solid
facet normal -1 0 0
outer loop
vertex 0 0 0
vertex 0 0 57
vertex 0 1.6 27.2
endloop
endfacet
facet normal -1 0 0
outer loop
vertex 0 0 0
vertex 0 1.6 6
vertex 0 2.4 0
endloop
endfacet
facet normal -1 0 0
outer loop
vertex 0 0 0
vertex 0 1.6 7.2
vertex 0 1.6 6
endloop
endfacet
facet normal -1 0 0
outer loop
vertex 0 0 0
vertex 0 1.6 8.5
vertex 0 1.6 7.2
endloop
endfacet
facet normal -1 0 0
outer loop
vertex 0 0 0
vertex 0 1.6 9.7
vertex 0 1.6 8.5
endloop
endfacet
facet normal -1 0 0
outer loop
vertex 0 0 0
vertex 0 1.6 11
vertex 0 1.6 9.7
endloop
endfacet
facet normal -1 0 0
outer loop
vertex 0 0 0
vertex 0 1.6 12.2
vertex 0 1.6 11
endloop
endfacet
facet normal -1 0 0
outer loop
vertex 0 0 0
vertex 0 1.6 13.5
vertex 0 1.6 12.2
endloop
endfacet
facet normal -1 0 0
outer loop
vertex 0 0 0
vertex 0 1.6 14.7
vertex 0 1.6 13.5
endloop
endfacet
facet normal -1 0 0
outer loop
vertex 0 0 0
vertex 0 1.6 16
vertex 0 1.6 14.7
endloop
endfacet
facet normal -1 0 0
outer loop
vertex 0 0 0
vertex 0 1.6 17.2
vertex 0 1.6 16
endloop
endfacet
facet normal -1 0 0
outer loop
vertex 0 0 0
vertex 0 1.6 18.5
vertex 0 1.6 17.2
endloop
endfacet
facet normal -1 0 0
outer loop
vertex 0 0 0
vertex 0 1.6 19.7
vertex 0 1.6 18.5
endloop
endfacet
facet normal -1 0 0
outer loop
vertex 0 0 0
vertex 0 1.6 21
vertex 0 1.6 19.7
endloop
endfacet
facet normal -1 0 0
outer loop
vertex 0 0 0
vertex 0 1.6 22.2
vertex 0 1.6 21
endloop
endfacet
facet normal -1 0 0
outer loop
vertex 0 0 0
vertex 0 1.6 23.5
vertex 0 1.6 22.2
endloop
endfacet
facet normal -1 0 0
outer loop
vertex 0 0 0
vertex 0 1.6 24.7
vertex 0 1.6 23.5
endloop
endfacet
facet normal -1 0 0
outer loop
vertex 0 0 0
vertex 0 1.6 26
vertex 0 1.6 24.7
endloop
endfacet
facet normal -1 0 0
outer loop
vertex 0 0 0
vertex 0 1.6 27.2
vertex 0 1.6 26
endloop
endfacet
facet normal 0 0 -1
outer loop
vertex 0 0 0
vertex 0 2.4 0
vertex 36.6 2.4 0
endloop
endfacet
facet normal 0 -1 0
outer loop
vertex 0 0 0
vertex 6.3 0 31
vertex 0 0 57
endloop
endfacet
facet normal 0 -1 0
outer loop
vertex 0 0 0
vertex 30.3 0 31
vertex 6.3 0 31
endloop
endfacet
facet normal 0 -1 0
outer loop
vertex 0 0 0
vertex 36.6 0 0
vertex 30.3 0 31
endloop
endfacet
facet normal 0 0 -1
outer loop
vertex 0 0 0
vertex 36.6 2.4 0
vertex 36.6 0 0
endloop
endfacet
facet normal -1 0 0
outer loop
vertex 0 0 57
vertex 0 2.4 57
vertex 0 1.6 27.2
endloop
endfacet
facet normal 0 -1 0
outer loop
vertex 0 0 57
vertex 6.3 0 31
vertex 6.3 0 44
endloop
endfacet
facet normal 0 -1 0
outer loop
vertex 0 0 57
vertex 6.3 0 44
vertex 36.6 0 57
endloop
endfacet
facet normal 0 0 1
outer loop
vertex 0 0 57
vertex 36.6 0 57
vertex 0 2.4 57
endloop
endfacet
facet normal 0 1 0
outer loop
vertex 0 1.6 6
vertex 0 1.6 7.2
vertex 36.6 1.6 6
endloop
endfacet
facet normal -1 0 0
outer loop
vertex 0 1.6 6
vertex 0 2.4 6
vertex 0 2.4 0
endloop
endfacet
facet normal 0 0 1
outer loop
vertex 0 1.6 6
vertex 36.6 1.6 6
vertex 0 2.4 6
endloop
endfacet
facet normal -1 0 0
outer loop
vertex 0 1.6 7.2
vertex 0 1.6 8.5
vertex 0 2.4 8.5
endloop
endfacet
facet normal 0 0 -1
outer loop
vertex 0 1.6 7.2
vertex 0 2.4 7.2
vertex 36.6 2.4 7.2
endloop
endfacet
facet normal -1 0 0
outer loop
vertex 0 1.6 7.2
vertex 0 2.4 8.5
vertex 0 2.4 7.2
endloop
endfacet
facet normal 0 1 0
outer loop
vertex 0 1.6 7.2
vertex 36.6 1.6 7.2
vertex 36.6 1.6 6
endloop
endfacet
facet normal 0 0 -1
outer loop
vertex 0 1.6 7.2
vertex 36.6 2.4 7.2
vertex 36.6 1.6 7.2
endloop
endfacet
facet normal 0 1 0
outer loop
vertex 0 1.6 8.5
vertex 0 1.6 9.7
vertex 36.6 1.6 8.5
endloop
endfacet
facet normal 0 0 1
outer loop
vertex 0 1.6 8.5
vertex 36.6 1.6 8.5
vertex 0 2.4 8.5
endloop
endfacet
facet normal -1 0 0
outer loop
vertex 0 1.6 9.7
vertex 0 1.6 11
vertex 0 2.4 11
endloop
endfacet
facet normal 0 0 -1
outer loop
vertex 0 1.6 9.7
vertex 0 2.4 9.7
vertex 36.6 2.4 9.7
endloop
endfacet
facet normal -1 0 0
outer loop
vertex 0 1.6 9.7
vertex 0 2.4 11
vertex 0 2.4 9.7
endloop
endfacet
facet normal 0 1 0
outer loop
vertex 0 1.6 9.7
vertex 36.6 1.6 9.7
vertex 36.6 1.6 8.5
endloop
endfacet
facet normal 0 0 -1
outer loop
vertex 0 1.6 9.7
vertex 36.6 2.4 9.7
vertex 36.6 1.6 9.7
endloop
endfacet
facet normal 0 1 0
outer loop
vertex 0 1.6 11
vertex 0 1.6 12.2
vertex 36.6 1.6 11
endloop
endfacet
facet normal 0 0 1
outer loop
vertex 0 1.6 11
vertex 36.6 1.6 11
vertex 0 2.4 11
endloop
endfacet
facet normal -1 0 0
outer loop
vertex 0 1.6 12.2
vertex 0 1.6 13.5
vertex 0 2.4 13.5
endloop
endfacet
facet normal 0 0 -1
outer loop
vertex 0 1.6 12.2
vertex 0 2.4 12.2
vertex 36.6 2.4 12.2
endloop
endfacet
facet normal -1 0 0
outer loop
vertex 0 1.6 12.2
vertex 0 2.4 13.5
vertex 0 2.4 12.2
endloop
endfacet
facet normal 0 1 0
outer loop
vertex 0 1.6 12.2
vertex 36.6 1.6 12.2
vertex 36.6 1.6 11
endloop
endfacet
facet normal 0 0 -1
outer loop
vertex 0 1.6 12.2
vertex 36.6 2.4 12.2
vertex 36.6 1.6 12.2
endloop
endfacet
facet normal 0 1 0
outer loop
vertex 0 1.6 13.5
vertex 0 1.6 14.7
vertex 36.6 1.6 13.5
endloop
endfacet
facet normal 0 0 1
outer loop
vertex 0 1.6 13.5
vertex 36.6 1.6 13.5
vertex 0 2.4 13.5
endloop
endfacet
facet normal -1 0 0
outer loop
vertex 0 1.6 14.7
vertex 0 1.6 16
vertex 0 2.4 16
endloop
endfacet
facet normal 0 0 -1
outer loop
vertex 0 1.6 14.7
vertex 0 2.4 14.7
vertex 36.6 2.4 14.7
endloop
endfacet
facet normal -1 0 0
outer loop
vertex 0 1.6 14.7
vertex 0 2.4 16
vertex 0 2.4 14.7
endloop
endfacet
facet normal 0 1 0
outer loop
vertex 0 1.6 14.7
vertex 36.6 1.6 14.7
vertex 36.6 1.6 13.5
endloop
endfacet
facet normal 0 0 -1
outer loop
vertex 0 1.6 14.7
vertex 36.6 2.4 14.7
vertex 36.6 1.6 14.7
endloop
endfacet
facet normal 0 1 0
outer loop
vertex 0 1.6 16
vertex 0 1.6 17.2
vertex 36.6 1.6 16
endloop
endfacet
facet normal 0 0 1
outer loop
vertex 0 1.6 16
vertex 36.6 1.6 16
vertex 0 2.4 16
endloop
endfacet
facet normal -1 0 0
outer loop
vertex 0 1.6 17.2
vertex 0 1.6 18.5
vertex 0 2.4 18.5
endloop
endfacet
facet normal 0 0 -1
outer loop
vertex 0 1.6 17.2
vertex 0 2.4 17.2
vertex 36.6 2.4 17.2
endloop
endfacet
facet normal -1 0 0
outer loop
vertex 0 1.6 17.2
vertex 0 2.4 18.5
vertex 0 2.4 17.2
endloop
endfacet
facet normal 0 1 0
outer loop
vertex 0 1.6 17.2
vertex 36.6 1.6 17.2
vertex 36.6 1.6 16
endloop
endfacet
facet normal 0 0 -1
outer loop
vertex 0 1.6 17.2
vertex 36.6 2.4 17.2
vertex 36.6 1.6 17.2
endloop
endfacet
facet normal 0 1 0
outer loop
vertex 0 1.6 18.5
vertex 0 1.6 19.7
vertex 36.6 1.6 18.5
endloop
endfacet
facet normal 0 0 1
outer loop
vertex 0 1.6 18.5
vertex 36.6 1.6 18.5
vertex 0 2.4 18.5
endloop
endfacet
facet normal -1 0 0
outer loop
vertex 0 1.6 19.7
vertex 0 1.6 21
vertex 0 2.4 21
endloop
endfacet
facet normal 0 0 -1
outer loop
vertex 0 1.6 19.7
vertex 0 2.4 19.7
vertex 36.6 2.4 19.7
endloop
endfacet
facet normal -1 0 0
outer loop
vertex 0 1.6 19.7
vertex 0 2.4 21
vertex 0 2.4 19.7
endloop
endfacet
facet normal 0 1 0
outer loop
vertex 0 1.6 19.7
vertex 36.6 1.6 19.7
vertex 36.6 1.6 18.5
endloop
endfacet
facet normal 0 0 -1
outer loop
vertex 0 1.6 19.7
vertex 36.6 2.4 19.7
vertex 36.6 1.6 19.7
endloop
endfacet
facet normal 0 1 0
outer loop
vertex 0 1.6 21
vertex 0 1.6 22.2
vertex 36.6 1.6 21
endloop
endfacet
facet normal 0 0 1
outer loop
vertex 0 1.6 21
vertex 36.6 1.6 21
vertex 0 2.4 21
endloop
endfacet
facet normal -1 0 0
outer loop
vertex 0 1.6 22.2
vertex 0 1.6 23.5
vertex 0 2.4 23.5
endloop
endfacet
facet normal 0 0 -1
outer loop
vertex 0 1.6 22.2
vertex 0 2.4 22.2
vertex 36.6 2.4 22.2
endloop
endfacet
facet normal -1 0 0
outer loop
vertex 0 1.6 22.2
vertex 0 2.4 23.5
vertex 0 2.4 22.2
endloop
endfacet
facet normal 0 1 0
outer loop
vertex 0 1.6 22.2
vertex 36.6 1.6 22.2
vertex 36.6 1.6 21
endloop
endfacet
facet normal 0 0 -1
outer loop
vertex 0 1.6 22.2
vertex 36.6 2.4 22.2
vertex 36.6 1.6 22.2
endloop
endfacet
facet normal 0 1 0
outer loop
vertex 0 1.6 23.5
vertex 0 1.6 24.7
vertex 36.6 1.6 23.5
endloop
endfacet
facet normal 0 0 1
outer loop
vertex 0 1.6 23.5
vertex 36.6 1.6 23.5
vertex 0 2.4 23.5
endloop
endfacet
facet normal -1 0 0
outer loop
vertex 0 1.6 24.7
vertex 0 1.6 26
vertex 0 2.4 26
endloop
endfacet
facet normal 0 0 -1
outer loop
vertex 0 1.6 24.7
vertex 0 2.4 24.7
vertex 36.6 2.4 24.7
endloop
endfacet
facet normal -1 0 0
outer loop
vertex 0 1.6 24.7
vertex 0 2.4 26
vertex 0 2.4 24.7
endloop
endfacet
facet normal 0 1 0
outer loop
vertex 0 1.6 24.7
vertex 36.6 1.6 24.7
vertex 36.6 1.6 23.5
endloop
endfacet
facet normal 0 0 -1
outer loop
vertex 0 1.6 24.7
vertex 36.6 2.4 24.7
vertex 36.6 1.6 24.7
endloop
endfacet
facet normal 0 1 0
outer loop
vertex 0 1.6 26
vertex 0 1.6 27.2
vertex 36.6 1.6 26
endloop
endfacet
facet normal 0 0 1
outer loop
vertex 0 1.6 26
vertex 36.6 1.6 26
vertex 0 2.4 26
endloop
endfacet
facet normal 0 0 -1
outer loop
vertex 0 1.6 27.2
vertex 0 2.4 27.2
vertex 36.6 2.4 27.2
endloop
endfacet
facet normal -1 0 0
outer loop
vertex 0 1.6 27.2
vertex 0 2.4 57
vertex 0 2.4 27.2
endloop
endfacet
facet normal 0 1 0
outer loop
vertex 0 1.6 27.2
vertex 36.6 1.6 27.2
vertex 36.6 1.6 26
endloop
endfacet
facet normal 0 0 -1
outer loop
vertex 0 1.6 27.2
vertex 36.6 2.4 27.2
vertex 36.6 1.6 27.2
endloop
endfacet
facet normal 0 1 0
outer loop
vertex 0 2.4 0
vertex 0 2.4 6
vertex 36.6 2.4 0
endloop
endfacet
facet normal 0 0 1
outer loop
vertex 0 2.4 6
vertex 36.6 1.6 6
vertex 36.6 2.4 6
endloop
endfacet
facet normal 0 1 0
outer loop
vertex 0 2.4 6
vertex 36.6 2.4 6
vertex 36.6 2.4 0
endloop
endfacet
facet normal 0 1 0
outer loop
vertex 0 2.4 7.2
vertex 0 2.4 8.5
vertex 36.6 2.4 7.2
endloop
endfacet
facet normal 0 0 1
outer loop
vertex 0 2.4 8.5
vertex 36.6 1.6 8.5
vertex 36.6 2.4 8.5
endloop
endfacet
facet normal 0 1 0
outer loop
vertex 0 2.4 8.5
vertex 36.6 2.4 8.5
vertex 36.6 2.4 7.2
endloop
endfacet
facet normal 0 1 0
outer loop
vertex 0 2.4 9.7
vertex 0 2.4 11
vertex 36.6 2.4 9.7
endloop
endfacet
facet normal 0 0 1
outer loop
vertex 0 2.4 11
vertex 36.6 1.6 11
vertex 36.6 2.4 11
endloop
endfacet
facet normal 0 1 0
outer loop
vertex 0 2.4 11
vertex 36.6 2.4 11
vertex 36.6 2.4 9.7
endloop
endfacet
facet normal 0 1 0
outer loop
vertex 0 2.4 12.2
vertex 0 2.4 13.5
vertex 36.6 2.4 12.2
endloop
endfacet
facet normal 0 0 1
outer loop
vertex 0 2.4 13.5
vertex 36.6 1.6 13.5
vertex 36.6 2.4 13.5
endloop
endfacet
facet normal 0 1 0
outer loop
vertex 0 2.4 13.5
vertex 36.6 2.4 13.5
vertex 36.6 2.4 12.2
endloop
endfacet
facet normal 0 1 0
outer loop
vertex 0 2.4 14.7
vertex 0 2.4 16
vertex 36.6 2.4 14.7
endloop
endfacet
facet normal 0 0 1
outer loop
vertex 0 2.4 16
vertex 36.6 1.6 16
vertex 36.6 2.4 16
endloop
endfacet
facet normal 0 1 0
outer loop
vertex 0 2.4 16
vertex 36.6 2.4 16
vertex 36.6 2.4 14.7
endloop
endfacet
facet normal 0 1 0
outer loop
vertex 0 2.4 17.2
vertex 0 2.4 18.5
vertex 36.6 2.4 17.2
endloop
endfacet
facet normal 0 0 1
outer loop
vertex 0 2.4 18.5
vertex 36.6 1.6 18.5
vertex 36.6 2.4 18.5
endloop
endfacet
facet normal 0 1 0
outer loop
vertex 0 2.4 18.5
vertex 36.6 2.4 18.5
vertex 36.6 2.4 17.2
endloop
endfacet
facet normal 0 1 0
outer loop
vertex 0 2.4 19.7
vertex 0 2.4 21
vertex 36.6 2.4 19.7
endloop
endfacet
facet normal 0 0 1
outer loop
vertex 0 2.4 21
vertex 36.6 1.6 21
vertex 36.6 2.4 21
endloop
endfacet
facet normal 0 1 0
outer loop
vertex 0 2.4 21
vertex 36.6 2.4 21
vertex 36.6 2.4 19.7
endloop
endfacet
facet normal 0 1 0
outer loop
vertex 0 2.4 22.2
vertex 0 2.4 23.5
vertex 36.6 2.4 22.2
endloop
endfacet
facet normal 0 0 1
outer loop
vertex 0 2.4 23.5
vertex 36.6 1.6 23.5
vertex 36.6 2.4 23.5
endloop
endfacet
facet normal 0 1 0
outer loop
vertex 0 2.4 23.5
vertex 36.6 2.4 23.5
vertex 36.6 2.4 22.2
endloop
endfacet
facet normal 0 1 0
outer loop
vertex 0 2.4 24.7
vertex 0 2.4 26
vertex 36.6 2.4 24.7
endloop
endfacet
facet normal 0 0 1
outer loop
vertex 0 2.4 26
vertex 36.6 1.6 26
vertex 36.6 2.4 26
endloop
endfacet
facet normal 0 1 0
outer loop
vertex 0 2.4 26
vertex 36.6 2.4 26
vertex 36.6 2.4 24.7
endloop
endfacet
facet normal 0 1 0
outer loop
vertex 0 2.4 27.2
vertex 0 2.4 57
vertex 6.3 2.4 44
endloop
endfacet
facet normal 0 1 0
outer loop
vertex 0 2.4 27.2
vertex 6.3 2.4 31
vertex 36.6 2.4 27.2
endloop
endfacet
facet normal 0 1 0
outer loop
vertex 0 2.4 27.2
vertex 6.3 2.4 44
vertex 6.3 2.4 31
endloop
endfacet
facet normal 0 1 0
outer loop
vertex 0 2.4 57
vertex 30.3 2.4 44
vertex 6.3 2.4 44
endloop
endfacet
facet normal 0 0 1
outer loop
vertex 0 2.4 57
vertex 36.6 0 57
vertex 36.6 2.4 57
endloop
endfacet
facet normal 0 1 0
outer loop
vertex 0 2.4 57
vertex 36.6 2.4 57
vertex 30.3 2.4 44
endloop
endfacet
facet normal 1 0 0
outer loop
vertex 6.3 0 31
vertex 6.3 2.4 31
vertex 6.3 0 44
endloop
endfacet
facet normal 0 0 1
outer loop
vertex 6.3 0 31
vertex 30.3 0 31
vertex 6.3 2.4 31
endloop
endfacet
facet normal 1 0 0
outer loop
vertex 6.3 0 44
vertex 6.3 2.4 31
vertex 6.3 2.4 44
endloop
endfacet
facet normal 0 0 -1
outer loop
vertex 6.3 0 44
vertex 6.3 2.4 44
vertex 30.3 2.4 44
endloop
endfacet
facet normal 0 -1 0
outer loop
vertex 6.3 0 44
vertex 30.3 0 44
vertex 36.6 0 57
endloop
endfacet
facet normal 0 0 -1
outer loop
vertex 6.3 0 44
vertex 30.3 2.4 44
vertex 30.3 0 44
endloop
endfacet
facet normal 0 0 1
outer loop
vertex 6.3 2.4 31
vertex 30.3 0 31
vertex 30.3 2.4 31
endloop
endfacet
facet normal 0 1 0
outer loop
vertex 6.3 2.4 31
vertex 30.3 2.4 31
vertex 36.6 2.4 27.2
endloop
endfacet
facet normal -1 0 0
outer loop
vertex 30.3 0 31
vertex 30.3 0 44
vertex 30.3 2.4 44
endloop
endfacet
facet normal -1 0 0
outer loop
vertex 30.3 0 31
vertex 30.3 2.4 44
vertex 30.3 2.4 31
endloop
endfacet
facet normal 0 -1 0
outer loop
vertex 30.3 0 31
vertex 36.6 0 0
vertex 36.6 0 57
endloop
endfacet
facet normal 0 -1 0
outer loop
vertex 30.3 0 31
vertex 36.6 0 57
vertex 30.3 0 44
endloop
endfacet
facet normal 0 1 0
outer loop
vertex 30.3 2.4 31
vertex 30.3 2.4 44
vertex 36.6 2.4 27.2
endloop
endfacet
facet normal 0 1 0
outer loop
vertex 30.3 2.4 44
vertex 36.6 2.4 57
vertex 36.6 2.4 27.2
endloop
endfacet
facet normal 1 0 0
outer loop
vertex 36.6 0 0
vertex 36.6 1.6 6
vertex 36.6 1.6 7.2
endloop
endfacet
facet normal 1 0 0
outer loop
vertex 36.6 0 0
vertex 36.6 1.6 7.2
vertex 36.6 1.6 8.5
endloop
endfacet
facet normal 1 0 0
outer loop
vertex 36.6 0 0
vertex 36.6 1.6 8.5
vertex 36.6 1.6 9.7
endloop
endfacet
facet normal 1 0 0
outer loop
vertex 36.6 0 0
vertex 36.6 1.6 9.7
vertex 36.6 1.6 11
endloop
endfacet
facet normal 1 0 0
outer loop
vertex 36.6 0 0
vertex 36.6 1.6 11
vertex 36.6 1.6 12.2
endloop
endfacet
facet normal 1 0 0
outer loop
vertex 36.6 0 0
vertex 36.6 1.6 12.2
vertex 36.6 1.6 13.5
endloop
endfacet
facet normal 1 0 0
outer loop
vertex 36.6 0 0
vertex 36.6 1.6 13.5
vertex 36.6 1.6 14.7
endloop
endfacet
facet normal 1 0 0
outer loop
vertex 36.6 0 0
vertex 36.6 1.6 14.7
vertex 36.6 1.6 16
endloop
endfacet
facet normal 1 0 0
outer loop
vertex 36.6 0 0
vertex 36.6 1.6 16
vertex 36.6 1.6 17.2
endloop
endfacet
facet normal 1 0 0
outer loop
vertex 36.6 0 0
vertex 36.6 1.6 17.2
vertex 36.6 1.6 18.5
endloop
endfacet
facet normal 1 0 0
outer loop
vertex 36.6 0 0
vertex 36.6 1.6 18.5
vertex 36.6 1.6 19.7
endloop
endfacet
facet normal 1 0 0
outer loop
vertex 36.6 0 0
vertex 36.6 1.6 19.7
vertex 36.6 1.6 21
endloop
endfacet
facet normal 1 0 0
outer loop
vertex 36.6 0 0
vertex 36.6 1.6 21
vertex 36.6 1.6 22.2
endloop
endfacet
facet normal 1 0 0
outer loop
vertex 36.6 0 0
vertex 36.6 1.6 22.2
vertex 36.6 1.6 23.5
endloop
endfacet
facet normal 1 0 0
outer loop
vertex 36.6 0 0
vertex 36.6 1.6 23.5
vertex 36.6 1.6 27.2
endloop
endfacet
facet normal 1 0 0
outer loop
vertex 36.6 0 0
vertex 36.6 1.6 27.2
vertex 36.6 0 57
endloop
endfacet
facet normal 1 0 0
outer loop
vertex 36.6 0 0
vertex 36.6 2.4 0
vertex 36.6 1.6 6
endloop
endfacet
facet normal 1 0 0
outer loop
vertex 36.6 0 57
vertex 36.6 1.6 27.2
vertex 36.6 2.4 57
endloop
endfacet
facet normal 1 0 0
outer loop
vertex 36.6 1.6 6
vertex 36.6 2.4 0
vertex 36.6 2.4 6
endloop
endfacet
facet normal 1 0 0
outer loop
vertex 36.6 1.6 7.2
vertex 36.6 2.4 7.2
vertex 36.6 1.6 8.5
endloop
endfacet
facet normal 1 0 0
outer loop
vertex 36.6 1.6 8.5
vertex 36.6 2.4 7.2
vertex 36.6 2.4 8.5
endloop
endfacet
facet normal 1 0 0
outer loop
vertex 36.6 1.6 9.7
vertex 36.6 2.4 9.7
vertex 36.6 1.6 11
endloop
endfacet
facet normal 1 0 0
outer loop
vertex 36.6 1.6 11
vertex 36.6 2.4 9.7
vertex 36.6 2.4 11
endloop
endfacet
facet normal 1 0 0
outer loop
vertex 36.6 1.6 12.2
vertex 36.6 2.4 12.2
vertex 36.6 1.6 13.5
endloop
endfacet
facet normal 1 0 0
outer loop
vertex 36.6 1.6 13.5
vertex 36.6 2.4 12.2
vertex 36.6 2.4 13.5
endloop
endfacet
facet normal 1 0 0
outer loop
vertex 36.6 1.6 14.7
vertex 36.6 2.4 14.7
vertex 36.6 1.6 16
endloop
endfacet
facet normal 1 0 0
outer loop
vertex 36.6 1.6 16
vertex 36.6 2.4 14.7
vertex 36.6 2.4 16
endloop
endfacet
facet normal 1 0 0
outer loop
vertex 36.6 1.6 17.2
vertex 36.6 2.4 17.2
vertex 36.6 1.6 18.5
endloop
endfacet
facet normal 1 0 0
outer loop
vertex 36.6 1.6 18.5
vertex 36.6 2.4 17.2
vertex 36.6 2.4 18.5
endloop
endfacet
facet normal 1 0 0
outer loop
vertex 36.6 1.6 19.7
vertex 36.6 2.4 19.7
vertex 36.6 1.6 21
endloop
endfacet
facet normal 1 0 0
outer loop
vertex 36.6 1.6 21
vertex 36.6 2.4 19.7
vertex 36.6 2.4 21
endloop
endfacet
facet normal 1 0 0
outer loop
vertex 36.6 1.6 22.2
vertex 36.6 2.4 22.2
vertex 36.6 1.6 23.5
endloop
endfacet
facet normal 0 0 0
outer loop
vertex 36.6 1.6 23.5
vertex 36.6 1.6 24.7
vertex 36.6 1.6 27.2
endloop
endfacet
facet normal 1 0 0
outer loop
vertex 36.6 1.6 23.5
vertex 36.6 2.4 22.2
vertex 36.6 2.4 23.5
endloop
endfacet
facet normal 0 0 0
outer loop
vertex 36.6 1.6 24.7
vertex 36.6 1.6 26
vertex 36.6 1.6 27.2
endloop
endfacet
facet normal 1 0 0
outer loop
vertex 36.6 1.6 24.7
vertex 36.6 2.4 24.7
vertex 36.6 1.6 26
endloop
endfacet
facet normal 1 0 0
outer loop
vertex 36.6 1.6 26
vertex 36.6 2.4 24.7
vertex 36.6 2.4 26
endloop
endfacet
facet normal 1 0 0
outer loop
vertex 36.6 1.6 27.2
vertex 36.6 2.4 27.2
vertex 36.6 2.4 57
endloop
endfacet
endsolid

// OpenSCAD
// OmniDeck IoT Console - Gömme Sürgülü Kapı (Sliding Door)
// Versiyon 2.3 - Tırtıklar Aşağıda (Görünür Bölgede), Servo Penceresi Yukarıda

$fn = 60;
eps = 0.1;

module final_fixed_door() {
    doorW = 36.6; 
    doorT = 2.4;  
    doorH = 57;   

    union() {
        difference() {
            // 1. ANA PANEL
            // Baskı sırasında arka (düz) yüzeyini tablaya yapıştırın.
            cube([doorW, doorT, doorH]);
            
            // 2. KİLİT PENCERESİ (Yukarı taşındı)
            // Servonun beyaz kolu fotoğrafta yukarıda görünüyor.
            // Bu pencere artık 32mm'den başlayıp 45mm'ye kadar uzanıyor.
            translate([doorW/2 - 12, -eps, 31]) 
                cube([24, doorT + 2*eps, 13]); 

            // 3. DIŞ YÜZEY SÜRTÜNME KANALLARI (Aşağı indirildi)
            // Kasanın dış deliğinden bakıldığında tam parmak ucuna gelecek yer.
            // Alt kısımdan (6mm'den) başlayarak parmak kavrama alanı oluşturur.
            for(i = [0 : 8]) {
                translate([-eps, doorT - 0.8, 6 + (i * 2.5)])
                    cube([doorW + 2*eps, 1.2, 1.2]);
            }
        }
    }
}

// --- ÇİZİM ÇAĞRILARI ---
final_fixed_door();
